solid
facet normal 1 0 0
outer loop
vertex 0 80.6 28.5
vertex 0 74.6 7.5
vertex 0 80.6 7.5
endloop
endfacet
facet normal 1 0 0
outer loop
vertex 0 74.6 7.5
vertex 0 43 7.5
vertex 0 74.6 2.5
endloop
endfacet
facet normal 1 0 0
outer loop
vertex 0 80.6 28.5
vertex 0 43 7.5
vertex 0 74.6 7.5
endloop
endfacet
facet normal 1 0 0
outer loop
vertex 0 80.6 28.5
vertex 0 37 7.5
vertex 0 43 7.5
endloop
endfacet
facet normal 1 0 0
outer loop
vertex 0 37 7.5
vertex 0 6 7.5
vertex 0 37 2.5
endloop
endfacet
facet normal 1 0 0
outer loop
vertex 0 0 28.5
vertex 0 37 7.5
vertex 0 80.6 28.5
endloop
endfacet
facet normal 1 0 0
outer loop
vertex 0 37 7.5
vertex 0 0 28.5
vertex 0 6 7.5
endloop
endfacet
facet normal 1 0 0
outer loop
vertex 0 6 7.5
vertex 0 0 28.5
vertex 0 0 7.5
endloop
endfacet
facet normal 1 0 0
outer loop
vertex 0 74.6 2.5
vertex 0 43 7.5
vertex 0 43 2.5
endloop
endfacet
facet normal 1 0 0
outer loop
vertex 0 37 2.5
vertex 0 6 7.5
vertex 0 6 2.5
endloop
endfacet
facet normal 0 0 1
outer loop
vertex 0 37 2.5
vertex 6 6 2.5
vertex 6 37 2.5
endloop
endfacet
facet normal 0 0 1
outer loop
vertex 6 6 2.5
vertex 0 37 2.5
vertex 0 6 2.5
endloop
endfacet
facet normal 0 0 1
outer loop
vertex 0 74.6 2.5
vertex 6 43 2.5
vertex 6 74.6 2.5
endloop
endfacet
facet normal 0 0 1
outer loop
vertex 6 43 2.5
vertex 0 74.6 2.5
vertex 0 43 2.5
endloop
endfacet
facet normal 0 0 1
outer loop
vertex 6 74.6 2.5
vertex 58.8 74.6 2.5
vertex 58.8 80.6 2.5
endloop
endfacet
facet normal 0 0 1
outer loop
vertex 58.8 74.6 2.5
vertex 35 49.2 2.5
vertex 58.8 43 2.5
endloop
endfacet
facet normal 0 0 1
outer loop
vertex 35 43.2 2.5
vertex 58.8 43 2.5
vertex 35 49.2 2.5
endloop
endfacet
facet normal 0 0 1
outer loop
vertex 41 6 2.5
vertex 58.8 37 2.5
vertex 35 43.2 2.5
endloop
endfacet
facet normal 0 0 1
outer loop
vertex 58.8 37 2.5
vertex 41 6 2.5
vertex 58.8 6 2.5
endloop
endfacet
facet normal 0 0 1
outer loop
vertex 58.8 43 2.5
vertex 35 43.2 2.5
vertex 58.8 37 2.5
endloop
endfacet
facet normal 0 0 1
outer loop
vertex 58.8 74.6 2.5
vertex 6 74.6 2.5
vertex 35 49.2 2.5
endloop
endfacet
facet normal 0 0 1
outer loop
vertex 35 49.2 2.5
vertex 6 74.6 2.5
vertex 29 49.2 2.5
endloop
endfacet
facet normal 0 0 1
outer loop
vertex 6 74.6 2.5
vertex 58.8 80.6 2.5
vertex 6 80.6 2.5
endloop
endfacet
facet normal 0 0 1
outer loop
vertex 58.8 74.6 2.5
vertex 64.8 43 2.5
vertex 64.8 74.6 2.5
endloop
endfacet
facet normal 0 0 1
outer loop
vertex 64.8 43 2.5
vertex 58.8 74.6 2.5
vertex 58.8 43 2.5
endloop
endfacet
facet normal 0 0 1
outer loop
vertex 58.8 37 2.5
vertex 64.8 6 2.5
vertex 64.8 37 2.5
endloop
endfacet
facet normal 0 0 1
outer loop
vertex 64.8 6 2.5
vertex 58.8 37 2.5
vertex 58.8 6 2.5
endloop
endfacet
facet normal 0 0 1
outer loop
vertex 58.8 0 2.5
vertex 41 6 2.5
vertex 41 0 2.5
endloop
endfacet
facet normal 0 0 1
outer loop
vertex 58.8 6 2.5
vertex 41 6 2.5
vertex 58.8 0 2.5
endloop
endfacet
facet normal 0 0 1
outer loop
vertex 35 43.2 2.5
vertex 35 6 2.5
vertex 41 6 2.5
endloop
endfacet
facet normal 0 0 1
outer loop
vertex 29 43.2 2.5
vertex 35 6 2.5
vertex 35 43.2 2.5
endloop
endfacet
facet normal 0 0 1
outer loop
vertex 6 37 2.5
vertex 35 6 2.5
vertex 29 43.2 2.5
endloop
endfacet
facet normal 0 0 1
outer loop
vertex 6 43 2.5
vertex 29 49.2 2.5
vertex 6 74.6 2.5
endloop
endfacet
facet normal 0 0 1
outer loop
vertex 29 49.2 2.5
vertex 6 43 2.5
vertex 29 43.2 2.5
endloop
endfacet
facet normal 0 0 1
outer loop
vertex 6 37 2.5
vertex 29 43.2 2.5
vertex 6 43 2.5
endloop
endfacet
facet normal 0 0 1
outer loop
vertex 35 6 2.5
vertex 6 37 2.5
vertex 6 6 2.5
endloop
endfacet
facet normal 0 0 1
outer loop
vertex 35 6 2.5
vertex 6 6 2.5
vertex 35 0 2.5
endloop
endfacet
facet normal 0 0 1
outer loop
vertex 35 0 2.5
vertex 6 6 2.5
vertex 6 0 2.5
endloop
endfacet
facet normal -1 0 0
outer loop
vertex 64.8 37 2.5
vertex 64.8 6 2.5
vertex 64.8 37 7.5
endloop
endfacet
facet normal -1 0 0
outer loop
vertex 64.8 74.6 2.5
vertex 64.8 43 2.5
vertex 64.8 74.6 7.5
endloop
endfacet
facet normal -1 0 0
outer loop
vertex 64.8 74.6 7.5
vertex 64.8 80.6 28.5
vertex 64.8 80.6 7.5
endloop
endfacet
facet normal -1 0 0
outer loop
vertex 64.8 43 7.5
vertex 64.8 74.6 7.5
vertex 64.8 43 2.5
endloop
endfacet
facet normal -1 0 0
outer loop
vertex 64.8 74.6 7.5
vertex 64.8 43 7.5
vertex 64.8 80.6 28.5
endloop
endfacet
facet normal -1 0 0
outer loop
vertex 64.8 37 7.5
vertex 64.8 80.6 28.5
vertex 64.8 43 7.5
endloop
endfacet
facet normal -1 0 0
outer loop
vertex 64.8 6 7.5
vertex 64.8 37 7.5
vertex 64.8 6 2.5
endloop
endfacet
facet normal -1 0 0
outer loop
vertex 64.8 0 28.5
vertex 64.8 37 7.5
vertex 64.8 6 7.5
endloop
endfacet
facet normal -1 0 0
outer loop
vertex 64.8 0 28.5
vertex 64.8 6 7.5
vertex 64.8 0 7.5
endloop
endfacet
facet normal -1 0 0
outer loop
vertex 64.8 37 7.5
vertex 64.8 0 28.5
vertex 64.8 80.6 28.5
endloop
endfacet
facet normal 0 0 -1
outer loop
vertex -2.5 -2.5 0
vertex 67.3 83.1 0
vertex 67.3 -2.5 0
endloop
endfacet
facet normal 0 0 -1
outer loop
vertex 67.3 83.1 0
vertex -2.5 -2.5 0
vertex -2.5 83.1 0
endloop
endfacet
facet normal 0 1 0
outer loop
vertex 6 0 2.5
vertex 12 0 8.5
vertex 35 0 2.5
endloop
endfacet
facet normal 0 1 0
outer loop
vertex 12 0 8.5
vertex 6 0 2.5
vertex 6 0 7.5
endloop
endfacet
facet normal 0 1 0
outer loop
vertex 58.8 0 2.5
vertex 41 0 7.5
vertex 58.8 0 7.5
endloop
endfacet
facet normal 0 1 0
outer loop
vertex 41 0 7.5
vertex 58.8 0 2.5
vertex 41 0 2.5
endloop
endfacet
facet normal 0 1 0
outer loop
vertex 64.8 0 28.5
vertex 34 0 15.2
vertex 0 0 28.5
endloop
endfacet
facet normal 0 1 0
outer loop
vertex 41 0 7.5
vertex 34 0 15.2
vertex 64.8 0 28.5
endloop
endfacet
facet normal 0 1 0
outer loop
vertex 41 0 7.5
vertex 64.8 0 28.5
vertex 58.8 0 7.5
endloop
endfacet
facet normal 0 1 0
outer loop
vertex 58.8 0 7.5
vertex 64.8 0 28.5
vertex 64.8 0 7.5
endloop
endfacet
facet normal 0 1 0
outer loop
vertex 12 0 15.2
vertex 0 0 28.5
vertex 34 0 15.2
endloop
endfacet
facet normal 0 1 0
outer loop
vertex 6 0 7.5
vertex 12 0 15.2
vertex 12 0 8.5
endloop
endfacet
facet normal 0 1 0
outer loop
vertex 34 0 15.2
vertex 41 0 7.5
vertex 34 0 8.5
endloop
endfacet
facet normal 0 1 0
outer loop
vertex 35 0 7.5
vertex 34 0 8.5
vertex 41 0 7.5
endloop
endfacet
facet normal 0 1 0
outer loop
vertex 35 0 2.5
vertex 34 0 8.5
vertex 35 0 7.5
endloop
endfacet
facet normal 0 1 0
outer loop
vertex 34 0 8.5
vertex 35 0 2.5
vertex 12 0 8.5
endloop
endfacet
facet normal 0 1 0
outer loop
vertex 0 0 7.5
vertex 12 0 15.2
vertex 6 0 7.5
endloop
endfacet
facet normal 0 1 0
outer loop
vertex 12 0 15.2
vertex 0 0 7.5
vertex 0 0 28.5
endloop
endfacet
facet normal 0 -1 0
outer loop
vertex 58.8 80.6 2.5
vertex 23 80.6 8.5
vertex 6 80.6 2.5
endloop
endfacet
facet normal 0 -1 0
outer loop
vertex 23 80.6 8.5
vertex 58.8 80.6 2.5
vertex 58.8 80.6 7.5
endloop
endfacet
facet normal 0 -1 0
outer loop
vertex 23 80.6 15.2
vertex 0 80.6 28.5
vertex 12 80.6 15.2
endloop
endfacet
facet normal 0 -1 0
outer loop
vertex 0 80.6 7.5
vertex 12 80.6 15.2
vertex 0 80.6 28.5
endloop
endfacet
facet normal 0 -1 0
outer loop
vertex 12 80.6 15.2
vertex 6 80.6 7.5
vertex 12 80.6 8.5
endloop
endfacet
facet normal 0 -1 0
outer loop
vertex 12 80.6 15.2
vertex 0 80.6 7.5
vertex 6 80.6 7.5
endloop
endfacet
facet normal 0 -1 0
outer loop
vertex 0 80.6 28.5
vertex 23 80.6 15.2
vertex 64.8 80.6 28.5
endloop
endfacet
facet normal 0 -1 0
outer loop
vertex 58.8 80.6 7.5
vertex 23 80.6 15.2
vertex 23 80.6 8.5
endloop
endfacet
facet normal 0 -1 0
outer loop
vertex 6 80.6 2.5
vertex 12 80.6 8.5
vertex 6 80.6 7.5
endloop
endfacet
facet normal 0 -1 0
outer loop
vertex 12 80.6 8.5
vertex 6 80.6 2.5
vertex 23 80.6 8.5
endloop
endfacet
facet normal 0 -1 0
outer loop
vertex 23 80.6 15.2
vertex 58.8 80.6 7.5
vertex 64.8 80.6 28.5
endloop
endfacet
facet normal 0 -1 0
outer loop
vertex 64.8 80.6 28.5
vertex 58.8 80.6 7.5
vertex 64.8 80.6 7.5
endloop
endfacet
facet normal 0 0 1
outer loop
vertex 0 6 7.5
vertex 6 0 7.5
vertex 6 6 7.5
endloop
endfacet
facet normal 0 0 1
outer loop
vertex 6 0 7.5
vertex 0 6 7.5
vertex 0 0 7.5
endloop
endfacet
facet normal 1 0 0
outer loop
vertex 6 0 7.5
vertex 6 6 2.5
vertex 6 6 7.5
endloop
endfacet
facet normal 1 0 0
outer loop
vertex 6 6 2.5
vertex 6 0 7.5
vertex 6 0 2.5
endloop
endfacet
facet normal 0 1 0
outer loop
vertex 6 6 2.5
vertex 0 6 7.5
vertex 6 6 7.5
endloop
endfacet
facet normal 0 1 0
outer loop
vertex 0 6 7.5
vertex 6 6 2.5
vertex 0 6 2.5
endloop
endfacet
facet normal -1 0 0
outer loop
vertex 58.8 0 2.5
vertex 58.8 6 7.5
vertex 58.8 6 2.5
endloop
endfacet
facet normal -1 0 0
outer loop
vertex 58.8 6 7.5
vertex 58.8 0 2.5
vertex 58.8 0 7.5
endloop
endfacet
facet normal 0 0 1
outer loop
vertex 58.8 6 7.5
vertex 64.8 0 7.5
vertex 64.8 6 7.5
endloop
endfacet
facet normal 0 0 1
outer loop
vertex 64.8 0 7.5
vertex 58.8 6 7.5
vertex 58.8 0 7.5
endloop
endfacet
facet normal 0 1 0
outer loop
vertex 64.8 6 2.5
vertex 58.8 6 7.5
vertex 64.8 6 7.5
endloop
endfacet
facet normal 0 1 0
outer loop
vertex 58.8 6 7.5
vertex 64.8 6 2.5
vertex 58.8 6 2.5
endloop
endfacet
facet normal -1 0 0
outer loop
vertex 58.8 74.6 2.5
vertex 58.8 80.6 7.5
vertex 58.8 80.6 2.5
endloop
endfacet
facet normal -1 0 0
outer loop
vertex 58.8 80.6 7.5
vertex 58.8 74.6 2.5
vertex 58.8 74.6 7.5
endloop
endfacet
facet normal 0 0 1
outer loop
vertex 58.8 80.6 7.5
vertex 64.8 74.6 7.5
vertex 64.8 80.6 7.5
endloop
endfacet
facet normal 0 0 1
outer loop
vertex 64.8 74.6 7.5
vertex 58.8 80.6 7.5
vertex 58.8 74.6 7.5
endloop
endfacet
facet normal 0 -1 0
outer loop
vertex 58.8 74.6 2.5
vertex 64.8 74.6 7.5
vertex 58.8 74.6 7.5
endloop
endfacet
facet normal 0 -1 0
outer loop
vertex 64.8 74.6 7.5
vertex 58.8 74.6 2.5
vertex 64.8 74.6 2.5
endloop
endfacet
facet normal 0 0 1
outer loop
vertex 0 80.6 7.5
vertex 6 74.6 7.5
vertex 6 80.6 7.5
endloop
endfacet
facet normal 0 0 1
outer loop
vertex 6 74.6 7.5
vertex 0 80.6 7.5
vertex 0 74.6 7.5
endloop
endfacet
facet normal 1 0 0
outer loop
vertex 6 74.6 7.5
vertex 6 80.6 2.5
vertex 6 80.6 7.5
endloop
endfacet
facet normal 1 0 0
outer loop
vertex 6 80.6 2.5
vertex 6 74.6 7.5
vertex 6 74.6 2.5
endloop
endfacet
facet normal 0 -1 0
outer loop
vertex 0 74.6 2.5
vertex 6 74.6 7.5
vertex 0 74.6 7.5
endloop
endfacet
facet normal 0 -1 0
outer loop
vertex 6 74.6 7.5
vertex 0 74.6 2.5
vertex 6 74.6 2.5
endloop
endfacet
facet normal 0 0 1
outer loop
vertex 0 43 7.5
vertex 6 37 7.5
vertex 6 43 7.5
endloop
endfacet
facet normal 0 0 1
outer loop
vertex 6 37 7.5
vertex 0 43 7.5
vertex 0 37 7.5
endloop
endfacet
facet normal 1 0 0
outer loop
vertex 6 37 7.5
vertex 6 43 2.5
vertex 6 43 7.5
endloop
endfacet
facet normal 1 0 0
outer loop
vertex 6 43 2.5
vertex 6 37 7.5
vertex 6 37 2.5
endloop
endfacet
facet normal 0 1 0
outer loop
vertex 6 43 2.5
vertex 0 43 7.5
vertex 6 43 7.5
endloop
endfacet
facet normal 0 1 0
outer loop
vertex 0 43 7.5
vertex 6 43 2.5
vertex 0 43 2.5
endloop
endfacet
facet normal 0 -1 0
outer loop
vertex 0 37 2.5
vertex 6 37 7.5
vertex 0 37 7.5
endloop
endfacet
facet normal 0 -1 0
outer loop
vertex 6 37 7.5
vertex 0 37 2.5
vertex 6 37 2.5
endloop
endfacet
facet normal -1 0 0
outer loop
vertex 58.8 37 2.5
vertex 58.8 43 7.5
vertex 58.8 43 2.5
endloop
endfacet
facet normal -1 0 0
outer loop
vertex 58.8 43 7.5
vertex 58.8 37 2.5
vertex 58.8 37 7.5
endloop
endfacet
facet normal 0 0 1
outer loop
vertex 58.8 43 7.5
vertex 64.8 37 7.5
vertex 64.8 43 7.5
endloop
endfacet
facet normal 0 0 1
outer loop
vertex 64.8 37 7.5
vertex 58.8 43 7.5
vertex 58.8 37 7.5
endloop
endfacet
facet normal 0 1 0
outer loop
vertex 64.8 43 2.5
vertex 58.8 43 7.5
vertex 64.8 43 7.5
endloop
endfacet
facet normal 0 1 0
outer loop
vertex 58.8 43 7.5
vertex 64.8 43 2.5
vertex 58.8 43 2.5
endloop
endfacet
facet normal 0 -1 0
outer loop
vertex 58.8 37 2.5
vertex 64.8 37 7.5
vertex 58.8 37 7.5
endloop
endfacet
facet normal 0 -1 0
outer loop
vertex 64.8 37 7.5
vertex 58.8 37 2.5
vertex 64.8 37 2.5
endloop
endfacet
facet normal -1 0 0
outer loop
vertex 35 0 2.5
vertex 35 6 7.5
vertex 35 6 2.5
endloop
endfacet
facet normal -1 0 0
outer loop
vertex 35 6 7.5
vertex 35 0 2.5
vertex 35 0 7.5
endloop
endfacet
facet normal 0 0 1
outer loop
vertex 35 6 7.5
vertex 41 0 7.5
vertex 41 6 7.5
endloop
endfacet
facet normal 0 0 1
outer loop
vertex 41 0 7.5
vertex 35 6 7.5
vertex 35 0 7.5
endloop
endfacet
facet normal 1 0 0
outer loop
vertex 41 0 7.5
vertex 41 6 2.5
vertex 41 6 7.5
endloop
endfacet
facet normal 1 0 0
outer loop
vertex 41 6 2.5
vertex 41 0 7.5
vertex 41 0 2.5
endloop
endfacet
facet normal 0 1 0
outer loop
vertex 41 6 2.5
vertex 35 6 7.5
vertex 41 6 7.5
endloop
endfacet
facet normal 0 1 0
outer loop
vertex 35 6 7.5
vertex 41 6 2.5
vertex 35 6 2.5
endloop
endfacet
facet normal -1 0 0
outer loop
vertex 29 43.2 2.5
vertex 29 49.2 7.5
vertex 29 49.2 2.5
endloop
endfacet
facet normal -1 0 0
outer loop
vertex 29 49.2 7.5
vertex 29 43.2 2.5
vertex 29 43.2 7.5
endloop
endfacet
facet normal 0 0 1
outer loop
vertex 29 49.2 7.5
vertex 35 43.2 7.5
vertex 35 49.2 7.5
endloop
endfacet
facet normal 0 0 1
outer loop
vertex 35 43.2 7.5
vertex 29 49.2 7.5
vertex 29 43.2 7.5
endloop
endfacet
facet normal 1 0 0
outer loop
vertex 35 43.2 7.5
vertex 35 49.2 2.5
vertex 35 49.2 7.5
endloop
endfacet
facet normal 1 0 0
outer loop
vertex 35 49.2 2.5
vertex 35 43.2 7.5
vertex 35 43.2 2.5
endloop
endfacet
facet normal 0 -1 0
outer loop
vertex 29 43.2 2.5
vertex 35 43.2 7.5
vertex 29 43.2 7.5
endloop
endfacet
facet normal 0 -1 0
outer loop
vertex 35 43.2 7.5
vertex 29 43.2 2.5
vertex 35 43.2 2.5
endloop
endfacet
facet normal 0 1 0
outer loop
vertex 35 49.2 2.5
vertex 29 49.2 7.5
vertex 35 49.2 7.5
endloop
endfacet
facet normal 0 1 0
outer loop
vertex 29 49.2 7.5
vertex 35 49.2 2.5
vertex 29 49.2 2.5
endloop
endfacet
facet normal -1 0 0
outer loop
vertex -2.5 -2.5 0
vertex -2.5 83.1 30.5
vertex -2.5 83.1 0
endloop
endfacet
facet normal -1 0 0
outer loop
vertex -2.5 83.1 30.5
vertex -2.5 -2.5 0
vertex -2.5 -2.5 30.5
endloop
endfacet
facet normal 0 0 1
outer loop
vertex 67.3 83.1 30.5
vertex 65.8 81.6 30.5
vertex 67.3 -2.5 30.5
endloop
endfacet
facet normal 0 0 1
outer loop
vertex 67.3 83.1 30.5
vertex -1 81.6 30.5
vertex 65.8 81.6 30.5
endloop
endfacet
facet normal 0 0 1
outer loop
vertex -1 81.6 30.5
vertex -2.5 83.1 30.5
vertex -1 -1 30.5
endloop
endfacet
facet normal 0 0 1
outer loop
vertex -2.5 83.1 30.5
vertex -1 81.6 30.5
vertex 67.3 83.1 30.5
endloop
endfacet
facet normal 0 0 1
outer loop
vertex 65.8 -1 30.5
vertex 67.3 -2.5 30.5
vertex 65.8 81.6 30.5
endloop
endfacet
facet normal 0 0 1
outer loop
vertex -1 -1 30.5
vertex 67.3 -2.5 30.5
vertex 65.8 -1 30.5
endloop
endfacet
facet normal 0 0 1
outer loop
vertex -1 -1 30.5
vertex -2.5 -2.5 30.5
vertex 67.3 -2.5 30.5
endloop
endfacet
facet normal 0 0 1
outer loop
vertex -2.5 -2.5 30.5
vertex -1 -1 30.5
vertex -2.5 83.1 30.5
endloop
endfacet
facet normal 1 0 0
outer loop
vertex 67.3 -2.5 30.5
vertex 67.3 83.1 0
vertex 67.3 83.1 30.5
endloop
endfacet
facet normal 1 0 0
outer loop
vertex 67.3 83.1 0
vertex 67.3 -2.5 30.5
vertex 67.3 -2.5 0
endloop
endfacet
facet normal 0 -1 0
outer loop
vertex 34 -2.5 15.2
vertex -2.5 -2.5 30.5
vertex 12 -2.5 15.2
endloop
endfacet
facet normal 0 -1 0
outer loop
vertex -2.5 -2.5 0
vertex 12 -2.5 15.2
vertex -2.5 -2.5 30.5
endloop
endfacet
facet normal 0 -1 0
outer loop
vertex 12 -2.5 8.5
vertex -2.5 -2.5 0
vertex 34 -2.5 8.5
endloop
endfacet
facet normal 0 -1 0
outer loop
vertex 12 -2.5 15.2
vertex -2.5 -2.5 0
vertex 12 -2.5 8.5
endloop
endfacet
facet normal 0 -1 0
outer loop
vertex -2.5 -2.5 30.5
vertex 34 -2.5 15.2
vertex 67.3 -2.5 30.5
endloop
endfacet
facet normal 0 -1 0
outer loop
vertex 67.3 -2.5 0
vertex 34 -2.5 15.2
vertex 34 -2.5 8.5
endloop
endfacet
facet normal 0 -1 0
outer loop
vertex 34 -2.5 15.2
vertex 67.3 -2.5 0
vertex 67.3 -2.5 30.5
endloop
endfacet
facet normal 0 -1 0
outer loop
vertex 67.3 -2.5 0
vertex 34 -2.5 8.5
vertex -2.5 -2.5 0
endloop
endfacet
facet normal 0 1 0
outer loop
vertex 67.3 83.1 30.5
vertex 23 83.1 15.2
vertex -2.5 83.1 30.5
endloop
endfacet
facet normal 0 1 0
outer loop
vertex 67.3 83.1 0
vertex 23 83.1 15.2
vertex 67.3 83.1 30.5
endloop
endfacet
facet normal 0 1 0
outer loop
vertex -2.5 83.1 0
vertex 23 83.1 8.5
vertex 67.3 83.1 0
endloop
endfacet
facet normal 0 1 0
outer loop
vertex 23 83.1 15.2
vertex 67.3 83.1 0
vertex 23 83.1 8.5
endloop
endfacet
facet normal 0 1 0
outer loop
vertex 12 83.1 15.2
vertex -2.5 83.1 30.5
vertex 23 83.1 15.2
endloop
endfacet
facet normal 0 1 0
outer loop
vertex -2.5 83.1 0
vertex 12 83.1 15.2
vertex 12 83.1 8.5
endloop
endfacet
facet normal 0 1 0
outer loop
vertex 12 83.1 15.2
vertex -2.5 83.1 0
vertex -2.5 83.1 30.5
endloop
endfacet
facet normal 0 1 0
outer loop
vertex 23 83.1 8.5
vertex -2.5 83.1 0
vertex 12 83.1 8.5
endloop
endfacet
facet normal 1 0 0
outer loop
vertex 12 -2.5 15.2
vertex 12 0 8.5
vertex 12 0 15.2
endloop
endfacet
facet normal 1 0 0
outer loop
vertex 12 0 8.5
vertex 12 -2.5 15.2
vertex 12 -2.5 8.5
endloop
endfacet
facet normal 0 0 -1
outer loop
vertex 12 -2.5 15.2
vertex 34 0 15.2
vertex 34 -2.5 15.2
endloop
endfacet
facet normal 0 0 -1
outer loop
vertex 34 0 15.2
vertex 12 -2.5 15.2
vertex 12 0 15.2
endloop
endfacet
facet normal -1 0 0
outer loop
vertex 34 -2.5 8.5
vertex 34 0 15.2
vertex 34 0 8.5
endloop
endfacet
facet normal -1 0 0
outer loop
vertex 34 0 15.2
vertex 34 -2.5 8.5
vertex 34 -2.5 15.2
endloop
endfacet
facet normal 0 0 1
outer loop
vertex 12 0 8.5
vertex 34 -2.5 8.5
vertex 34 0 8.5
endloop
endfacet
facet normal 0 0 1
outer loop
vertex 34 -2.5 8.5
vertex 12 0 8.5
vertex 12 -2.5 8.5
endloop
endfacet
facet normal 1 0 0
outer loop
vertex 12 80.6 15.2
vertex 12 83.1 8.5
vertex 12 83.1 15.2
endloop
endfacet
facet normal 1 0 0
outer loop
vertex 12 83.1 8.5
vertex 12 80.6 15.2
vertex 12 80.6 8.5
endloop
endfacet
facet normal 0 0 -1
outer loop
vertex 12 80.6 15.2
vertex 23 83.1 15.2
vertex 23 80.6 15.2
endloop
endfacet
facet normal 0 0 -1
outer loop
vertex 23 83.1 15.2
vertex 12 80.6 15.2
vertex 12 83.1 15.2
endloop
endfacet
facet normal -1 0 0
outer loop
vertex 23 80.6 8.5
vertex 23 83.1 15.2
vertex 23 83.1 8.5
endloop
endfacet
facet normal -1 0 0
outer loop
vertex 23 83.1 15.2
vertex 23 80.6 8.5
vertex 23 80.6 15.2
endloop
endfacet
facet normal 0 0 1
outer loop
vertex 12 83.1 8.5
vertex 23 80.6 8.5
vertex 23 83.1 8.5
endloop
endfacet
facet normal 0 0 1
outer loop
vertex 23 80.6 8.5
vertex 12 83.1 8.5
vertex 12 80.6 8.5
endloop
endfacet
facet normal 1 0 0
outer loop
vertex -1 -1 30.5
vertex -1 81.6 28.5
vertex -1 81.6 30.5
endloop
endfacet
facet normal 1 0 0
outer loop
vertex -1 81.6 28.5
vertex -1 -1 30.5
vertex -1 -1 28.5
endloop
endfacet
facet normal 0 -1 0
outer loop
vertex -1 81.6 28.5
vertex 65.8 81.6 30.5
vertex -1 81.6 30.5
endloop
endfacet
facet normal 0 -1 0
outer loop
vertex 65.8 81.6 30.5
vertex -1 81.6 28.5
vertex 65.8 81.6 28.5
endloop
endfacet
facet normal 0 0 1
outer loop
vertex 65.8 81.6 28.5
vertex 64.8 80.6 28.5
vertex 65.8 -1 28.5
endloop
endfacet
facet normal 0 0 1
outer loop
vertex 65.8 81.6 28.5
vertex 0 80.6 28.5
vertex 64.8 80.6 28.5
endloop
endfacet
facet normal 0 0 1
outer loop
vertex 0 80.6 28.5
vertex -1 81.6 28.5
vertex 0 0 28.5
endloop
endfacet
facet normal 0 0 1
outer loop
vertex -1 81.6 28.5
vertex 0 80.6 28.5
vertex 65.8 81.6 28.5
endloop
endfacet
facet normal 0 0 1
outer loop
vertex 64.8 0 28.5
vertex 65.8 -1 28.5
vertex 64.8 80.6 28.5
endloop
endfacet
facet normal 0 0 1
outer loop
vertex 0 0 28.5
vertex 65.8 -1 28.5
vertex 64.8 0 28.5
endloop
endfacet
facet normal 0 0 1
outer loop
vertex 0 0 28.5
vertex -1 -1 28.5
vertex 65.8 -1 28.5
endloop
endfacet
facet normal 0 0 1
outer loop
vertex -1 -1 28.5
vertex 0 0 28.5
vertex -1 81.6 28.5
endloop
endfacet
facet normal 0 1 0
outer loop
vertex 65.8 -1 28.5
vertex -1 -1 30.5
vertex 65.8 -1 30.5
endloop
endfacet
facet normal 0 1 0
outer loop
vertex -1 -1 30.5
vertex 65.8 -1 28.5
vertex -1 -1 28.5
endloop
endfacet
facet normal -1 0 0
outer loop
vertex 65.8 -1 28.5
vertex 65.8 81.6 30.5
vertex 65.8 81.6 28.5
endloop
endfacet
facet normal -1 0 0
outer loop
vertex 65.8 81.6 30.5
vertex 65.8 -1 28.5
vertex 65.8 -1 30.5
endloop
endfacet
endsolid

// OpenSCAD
createBottom();

module createBottom(){
difference(){
  bottomBox();
  translate([12,-2.5,8.5]) cube([22,2.5,6.7]);
  translate([12,80.6,8.5]) cube([11,2.5,6.7]);
    
  translate([-1,-1,28.5]) cube([1,82.6,2]);
  translate([64.8,-1,28.5]) cube([1,82.6,2]);
  translate([0,-1,28.5]) cube([64.8,1,2]);
  translate([0,80.6,28.5]) cube([64.8,1,2]);
    
}
}

module bottomBox()
{
    //Grundplatte
cube([64.8,80.6,2.5]);

//Stützquader
translate([0,0,2.5]) cube([6,6,5]);
translate([58.8,0,2.5]) cube([6,6,5]);
translate([58.8,74.6,2.5]) cube([6,6,5]);
translate([0,74.6,2.5]) cube([6,6,5]);

translate([0,37,2.5]) cube([6,6,5]);
translate([58.8,37,2.5]) cube([6,6,5]);
translate([35,0,2.5]) cube([6,6,5]);

translate([29,43.2,2.5]) cube([6,6,5]);

//Rahmen
translate([-2.5,-2.5,0]) cube([69.8,2.5,30.5]);
translate([-2.5,80.6,0]) cube([69.8,2.5,30.5]);
translate([-2.5,0,0]) cube([2.5,80.6,30.5]);
translate([64.8,0,0]) cube([2.5,80.6,30.5]);
}
